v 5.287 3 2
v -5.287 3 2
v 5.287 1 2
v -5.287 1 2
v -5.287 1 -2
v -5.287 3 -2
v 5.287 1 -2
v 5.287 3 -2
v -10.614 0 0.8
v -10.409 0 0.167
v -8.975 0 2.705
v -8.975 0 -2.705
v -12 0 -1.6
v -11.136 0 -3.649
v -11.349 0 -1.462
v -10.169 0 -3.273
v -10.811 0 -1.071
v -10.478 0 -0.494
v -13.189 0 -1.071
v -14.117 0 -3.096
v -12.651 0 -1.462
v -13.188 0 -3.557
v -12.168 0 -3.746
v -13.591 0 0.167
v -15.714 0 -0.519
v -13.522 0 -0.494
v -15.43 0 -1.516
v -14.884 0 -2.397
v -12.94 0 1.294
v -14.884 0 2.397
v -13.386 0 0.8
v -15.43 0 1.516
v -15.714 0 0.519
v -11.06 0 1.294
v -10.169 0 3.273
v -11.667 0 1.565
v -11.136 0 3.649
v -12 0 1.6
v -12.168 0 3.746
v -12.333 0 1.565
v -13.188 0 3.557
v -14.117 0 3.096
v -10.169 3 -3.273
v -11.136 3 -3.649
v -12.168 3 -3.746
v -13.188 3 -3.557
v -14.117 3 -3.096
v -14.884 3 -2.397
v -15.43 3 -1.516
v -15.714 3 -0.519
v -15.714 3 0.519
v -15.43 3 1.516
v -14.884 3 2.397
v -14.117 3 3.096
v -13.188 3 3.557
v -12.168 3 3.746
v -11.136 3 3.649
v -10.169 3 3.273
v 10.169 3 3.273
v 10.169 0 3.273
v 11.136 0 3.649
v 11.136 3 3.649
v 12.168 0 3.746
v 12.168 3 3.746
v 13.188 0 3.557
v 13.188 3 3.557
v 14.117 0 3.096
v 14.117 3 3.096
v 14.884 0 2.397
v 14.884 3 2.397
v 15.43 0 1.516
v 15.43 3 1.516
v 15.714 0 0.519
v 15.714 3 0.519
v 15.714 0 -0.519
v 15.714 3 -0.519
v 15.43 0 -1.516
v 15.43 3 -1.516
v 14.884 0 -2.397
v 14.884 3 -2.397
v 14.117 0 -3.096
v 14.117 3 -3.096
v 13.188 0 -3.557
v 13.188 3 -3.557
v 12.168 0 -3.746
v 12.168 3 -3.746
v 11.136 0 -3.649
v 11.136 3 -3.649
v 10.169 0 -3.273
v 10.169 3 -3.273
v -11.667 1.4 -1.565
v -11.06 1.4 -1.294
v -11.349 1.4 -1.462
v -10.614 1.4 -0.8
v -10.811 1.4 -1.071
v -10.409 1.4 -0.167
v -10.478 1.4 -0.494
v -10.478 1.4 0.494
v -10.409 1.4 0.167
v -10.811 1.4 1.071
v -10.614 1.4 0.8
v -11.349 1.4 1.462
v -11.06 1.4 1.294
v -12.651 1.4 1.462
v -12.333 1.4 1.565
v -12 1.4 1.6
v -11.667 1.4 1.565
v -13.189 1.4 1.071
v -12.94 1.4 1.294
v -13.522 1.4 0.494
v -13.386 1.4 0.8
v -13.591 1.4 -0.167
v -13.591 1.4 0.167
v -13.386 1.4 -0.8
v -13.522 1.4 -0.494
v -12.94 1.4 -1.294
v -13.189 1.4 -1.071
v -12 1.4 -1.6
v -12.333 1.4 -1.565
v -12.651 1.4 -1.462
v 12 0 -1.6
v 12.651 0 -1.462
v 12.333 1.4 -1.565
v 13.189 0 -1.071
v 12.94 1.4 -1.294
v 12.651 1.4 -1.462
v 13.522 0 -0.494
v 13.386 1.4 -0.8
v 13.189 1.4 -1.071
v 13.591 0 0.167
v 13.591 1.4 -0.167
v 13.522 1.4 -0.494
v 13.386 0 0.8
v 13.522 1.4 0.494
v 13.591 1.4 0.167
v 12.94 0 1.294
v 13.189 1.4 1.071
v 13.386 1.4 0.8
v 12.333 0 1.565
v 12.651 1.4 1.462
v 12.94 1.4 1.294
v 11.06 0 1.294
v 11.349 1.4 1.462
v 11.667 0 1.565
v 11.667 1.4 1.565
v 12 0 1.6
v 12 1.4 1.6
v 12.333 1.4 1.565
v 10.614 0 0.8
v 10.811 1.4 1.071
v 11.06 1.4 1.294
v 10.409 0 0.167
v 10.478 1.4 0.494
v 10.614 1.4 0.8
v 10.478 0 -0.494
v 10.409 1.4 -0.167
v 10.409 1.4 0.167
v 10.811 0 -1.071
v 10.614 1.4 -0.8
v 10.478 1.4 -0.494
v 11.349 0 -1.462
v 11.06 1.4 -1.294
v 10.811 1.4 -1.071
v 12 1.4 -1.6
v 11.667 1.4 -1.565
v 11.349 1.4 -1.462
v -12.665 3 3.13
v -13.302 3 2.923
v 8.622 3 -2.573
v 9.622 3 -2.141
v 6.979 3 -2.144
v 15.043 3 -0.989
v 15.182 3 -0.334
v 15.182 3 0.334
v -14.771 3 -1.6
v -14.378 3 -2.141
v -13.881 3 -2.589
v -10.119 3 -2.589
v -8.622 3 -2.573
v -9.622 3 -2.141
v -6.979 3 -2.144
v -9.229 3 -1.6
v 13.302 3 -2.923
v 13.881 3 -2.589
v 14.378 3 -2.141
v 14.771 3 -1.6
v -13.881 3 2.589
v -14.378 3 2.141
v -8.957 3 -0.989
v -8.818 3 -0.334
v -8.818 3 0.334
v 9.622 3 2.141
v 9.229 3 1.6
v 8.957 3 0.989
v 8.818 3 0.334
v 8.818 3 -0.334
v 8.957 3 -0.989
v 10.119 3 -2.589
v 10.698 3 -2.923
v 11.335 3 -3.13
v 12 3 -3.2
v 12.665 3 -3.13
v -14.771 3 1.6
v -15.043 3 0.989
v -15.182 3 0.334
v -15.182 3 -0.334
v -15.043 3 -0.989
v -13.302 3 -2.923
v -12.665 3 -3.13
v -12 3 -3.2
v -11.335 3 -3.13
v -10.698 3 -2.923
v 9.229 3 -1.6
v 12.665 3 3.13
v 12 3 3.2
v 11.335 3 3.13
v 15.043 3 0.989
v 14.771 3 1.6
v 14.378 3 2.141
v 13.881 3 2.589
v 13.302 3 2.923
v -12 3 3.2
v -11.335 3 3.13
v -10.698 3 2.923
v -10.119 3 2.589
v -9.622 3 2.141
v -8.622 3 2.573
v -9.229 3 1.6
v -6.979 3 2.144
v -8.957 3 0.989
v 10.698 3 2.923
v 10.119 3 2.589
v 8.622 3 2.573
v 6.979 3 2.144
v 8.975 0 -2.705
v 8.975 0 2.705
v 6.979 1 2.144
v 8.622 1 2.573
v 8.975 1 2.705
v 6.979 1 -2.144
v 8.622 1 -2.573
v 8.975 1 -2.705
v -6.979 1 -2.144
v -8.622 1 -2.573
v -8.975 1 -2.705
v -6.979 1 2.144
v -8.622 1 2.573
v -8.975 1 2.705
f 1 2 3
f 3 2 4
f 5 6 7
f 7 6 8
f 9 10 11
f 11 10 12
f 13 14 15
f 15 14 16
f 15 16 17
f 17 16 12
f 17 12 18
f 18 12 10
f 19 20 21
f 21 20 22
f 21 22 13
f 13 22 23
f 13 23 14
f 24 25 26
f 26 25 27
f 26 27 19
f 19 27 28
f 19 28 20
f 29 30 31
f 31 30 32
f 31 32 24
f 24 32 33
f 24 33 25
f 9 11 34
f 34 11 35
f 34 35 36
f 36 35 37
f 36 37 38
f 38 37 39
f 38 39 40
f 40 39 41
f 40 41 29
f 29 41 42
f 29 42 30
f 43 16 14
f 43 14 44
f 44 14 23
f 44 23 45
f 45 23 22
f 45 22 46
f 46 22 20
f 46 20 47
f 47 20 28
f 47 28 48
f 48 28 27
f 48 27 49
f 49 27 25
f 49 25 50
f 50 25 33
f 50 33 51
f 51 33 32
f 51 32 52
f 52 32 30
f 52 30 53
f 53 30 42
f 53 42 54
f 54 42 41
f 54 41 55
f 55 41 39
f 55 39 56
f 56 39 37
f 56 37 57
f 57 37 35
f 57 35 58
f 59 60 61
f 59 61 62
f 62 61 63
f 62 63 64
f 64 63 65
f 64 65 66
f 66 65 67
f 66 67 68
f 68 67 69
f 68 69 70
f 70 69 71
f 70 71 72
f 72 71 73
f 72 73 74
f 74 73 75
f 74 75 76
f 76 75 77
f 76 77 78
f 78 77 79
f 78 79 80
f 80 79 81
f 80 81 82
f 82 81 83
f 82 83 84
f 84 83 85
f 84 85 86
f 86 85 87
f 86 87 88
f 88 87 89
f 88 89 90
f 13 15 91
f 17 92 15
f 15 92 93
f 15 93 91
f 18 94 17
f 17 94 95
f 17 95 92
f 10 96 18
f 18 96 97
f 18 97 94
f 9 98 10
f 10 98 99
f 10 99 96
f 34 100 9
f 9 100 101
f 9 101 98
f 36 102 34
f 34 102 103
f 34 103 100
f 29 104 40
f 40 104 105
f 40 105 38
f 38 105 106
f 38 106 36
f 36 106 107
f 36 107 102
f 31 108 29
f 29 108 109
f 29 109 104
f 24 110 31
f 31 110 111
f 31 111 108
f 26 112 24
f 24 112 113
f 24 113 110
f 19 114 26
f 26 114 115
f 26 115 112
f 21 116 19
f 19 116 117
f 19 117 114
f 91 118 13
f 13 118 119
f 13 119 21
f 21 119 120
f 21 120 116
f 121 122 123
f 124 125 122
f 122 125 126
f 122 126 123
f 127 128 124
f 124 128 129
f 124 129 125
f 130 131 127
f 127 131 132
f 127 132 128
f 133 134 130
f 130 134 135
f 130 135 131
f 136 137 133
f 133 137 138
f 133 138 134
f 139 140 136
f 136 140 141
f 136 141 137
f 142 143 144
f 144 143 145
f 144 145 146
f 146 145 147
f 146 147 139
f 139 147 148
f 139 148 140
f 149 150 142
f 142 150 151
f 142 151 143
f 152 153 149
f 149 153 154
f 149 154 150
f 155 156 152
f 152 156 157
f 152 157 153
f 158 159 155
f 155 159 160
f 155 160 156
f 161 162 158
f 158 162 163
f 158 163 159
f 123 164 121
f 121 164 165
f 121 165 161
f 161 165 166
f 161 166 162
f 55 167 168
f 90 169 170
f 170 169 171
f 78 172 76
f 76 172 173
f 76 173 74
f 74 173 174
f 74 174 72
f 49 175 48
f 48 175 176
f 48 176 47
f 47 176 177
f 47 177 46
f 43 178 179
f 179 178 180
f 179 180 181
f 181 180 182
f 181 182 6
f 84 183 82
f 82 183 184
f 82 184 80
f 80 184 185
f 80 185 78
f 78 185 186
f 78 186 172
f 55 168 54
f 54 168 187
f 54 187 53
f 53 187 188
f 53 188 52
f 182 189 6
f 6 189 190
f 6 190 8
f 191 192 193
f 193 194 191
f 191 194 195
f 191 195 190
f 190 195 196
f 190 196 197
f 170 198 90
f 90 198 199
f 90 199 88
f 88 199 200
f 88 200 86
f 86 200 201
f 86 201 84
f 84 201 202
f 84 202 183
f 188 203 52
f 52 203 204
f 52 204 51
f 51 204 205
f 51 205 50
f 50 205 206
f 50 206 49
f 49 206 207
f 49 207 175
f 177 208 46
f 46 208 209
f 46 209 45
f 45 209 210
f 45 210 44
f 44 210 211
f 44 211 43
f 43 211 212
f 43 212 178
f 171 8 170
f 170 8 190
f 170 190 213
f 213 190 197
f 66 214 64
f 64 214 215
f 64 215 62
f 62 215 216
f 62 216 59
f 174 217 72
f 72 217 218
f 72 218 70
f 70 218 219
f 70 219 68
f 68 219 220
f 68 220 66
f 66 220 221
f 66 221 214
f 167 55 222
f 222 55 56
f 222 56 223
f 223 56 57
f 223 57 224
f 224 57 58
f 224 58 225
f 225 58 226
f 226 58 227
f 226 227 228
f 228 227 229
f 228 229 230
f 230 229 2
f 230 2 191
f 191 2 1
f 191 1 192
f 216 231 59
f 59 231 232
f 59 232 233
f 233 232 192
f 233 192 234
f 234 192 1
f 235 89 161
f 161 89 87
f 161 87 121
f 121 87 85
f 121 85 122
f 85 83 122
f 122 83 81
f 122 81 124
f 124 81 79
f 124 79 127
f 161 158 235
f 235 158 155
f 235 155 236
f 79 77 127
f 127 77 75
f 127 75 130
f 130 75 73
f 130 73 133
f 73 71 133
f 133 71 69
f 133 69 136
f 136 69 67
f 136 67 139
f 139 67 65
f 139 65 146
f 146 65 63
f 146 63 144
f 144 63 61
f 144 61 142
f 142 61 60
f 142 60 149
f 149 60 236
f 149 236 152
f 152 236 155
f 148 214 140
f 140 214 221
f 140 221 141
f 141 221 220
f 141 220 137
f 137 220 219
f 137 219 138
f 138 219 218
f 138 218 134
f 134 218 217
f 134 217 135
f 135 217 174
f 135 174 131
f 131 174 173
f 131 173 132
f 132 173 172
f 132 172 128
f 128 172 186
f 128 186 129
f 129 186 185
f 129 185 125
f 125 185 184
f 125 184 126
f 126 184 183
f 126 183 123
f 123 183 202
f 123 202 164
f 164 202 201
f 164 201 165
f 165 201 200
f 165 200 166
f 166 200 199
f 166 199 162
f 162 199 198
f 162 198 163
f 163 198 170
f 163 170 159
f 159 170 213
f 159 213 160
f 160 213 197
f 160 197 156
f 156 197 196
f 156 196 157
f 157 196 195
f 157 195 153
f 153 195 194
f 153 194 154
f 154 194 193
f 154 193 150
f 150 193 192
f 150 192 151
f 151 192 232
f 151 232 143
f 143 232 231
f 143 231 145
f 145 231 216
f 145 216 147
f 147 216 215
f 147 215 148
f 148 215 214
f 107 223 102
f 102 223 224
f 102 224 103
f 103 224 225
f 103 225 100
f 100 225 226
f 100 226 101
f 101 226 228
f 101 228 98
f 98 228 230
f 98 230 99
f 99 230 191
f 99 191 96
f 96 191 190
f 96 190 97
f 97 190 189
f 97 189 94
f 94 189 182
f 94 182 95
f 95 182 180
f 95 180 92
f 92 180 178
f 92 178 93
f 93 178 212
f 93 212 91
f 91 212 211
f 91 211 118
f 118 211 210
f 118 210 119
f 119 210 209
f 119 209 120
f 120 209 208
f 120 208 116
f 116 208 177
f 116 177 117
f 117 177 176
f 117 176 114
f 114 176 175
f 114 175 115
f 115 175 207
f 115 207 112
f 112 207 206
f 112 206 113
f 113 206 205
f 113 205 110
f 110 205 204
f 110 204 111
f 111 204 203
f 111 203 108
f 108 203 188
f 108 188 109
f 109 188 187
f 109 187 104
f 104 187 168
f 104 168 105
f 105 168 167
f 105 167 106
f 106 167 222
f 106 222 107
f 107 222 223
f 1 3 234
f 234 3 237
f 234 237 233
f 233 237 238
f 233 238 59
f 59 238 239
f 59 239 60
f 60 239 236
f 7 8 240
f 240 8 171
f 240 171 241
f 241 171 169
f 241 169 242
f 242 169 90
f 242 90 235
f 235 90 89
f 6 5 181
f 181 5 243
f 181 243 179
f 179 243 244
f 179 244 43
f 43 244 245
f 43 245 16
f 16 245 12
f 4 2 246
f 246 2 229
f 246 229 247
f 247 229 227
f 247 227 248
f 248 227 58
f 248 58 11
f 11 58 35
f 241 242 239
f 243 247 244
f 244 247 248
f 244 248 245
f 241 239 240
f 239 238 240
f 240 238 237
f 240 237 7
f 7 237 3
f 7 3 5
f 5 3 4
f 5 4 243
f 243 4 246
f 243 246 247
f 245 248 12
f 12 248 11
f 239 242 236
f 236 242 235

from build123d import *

# Parameters (mm, degrees)
SKETCH1_R           = 1.6
BOSS_EXTRUDE1_DEPTH = 3
CHAMFER1_SIZE       = 1.6
FILLET1_R           = 10
SKETCH2_W           = 17.95
SKETCH2_H           = 5.409714066
CUT_EXTRUDE1_DEPTH  = 1


with BuildPart() as part:
    # Sketch1 → Boss-Extrude1 (new body)
    with BuildSketch(Plane(origin=(0, 0, 0), x_dir=(1, 0, 0), z_dir=(0, 1, 0))):
        with BuildLine():
            Line((8.827855615, 2), (-8.827855615, 2))
            ThreePointArc((-8.827855615, 2), (-15.75, 0), (-8.827855615, -2))
            Line((-8.827855615, -2), (8.827855615, -2))
            ThreePointArc((8.827855615, -2), (15.75, 0), (8.827855615, 2))
        make_face()
        with Locations(Location((-12, 0, 0), (0, 0, 270))):
            Circle(SKETCH1_R, mode=Mode.SUBTRACT)
        with Locations(Location((12, 0, 0), (0, 0, 270))):
            Circle(SKETCH1_R, mode=Mode.SUBTRACT)
    extrude(amount=BOSS_EXTRUDE1_DEPTH)

    # Chamfer1
    chamfer1_edges = [part.edges().sort_by_distance(p)[0] for p in [
        (12, 3, -1.6),
        (-12, 3, -1.6),
    ]]
    chamfer(chamfer1_edges, length=CHAMFER1_SIZE)

    # Fillet1
    fillet1_edges = [part.edges().sort_by_distance(p)[0] for p in [
        (-8.827855615, 1.5, -2),
        (8.827855615, 1.5, -2),
        (8.827855615, 1.5, 2),
        (-8.827855615, 1.5, 2),
    ]]
    fillet(fillet1_edges, radius=FILLET1_R)

    # Sketch2 → Cut-Extrude1 (cut)
    with BuildSketch(Plane(origin=(0, 0, 0), x_dir=(-1, 0, 0), z_dir=(0, -1, 0))):
        Rectangle(SKETCH2_W, SKETCH2_H)
    extrude(amount=-CUT_EXTRUDE1_DEPTH, mode=Mode.SUBTRACT)


solid = part.part
